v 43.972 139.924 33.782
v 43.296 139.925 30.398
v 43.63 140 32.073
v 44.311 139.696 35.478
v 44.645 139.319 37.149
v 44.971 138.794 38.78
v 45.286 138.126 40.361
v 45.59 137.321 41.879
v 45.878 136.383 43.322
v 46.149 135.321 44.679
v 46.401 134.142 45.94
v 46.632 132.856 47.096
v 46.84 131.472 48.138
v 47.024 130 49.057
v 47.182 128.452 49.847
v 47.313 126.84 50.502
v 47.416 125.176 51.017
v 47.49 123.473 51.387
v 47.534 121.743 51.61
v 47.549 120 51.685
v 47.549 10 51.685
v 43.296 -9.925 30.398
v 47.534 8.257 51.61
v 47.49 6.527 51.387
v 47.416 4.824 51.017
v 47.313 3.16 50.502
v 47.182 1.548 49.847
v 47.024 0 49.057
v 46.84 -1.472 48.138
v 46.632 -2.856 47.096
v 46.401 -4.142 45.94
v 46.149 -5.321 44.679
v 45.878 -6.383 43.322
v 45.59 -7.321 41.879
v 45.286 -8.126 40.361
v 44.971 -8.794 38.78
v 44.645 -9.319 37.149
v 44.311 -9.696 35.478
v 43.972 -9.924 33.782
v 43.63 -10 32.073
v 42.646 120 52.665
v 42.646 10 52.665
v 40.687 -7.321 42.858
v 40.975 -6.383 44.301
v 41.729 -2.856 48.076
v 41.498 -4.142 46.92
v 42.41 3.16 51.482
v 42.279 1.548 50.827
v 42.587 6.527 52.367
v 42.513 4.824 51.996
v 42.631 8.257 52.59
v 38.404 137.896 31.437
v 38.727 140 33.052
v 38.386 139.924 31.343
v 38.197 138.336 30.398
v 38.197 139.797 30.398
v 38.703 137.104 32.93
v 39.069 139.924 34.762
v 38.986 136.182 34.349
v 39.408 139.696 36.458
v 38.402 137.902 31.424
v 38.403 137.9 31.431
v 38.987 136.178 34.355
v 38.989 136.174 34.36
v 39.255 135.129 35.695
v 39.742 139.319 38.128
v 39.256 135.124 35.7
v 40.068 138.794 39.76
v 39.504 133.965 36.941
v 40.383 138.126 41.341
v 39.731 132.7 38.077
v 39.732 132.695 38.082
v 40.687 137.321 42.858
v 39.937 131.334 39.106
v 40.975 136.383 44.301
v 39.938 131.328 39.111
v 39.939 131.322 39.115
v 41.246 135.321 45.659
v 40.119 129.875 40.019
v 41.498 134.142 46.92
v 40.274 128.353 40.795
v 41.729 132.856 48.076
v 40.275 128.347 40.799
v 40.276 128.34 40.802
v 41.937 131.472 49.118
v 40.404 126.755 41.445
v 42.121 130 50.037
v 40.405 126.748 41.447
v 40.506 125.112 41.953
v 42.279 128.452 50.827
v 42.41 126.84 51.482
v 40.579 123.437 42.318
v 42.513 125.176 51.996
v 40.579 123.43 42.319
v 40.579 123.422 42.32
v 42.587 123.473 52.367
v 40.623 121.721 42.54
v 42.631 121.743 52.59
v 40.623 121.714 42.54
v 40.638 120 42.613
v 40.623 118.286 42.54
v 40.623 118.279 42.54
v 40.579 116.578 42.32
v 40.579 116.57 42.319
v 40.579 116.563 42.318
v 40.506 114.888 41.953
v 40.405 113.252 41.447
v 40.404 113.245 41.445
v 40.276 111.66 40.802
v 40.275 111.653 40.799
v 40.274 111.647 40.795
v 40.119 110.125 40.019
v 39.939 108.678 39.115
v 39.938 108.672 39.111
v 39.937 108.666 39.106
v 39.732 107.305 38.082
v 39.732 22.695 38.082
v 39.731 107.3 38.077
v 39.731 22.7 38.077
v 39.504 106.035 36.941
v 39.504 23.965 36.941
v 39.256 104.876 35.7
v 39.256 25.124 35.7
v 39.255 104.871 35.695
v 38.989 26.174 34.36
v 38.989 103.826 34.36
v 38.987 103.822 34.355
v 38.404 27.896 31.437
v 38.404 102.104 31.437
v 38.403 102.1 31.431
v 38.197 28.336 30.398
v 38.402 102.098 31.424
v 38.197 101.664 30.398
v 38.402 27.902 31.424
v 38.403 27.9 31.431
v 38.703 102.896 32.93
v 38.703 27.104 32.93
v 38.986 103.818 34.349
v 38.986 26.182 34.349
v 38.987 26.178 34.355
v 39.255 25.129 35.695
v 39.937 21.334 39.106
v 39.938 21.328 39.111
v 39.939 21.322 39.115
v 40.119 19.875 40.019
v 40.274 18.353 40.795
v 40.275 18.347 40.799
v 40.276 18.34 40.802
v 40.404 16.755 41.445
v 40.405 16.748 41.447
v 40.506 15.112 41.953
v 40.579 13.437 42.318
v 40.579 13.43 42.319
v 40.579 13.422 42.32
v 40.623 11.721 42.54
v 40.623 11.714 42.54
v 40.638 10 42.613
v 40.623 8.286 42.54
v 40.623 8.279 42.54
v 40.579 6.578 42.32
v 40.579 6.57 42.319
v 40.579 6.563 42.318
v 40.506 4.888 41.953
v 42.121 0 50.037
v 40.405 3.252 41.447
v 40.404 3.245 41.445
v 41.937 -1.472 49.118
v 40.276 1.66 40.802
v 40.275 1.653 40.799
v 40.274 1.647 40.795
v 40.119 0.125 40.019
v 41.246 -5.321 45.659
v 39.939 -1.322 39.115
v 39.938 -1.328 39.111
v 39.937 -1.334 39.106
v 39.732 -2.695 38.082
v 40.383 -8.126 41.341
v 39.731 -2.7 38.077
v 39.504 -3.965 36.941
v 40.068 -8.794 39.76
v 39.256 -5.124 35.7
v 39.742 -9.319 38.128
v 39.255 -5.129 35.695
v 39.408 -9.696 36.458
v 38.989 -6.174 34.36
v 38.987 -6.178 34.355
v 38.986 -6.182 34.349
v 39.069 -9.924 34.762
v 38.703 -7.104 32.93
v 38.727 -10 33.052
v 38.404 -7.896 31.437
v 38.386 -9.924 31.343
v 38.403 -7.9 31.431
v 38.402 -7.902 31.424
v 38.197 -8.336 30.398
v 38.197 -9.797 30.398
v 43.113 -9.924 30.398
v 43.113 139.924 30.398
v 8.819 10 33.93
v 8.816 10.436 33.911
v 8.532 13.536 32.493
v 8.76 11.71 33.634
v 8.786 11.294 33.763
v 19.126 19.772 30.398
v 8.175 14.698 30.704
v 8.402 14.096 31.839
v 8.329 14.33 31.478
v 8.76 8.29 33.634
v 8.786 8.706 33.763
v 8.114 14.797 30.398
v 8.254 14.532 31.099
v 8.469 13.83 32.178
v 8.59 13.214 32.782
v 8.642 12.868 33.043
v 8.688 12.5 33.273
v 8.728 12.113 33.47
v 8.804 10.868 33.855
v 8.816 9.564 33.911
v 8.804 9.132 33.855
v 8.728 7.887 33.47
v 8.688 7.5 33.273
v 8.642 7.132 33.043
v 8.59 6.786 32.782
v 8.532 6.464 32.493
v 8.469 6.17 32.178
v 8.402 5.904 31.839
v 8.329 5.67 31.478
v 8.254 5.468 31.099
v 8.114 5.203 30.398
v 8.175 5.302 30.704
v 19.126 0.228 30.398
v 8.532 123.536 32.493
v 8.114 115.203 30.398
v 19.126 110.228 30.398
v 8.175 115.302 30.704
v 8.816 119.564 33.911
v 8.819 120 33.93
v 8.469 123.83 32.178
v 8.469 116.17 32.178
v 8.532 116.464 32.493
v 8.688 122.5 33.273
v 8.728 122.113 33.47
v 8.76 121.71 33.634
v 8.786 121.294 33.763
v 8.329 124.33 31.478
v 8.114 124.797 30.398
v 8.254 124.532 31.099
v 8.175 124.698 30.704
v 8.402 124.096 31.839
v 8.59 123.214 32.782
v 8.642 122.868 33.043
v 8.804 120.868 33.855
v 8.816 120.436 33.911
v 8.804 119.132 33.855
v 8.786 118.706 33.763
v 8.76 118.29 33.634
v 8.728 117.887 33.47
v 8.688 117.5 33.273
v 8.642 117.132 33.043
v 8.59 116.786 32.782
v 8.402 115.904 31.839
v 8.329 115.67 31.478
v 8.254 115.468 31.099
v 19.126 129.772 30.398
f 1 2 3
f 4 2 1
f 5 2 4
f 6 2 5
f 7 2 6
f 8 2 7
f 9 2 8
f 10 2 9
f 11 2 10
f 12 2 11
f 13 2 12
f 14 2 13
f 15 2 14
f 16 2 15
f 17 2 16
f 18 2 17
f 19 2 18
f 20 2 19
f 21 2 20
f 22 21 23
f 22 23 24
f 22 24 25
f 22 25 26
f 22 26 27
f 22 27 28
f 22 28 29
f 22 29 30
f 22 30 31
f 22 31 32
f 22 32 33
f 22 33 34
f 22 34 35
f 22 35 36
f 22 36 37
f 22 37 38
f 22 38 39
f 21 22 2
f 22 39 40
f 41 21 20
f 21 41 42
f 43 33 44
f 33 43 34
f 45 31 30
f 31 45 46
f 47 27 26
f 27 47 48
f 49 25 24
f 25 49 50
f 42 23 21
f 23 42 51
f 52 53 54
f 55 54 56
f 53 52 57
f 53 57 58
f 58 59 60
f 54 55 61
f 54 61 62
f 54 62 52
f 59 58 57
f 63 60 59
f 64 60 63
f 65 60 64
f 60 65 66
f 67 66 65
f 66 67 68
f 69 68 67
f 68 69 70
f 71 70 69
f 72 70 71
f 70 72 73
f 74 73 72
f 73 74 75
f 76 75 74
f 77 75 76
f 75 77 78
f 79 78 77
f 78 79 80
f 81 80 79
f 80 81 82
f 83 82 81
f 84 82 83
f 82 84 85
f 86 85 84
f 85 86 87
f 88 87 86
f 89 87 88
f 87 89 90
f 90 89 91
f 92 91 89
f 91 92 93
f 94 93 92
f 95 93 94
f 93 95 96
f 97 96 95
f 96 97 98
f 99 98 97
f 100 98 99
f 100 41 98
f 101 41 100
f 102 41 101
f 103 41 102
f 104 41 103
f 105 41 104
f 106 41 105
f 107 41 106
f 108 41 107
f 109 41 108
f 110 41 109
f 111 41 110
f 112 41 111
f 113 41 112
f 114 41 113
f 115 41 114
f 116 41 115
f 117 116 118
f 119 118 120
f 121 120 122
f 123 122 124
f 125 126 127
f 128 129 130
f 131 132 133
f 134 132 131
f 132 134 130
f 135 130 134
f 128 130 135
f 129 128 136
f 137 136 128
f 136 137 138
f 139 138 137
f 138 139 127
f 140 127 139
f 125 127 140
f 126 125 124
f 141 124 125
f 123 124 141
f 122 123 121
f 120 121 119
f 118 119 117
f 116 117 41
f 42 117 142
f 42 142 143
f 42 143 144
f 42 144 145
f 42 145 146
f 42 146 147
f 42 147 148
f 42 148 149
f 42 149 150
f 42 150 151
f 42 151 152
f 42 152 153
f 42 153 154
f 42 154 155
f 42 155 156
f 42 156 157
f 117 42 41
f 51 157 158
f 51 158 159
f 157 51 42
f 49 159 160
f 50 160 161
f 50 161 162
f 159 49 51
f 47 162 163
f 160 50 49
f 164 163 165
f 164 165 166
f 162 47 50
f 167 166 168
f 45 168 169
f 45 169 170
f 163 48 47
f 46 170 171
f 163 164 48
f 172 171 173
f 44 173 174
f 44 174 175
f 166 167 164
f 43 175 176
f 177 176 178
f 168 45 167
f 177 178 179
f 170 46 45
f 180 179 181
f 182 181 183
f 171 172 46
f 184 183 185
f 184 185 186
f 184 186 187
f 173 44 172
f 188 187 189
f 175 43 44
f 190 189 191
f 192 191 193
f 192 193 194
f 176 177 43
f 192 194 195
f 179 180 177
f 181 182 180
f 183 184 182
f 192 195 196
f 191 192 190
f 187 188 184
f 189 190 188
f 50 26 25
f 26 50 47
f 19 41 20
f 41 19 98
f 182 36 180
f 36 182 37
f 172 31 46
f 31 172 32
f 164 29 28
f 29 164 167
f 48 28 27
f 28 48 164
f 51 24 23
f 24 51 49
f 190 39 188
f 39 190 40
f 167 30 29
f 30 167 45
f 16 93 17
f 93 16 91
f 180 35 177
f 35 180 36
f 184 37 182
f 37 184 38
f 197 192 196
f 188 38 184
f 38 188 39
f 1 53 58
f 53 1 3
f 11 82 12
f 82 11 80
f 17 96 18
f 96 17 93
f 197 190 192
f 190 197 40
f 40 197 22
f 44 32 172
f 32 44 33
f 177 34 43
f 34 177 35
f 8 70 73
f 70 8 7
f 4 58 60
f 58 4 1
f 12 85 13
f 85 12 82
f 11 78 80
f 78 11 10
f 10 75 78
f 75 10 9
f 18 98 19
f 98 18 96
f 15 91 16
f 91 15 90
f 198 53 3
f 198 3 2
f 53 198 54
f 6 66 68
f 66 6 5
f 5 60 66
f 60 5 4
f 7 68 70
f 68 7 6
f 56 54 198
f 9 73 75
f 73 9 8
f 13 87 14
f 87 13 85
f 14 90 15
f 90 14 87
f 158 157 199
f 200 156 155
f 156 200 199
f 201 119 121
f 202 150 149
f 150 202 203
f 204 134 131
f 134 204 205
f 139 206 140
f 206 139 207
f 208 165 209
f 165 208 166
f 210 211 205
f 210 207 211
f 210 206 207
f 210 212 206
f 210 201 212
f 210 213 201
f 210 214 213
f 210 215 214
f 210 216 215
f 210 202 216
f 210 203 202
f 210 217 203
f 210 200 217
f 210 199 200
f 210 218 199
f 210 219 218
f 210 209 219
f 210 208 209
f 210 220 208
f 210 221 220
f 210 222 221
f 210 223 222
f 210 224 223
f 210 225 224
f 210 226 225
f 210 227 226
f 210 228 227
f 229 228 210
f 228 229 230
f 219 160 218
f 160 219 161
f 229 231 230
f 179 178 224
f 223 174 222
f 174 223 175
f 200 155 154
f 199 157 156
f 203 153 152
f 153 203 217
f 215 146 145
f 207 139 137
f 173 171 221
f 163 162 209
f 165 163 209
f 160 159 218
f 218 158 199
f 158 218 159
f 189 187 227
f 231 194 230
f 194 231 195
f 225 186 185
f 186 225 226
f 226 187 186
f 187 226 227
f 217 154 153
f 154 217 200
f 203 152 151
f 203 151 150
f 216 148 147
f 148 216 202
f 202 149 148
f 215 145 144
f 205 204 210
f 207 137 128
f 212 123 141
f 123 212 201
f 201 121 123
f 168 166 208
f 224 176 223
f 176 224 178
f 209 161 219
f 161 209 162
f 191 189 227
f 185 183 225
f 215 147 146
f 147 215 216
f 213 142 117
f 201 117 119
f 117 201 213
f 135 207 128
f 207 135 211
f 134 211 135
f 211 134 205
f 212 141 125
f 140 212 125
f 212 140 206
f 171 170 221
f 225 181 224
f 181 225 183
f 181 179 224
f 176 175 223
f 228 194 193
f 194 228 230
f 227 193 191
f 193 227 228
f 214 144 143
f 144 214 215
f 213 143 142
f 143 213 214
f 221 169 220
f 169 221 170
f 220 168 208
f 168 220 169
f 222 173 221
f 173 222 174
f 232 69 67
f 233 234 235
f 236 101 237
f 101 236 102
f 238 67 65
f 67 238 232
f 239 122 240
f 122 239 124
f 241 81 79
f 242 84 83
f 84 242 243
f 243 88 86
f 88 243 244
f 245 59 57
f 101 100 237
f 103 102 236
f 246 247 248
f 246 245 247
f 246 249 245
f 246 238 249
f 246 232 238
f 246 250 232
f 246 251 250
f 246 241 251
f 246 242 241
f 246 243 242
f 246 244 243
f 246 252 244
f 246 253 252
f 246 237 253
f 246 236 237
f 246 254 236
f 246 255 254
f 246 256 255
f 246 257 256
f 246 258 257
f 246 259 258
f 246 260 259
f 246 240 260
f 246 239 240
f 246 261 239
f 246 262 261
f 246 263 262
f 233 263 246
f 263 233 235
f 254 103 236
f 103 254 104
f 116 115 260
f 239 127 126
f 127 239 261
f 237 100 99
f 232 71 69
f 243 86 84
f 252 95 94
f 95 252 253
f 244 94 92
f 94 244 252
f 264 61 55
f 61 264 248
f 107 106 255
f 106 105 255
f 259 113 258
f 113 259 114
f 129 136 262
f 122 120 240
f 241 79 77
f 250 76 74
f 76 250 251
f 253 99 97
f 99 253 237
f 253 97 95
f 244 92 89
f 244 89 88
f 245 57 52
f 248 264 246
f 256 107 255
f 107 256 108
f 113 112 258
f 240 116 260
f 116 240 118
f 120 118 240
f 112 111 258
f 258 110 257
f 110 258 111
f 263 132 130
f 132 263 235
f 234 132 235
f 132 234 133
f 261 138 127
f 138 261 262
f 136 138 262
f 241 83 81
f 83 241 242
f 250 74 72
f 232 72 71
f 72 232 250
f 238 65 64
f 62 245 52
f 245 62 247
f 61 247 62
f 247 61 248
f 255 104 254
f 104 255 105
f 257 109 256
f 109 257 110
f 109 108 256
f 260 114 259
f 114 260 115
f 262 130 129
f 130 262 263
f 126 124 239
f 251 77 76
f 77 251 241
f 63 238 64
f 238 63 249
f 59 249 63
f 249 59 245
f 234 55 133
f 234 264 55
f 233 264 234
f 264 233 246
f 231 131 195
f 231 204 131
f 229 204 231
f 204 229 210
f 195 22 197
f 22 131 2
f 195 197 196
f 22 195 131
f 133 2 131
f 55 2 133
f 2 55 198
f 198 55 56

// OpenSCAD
$fa=5; $fs=0.1;


rotate([0, 90+11.3, 0]) difference(){
    union(){
        hull(){
            translate([-40, 10, 34]) cylinder(h=5, r=20, center=true);
            translate([-40, 120, 34]) cylinder(h=5, r=20, center=true);
        }
        
        translate([-30, 10, 17]) cylinder(h=30, r2=20, r1=5, center=true);
        translate([-30, 120, 17]) cylinder(h=30, r2=20, r1=5, center=true);
    }
    
    
    union(){
        translate([-15, 65, 22]) rotate([0, -11.3, 0]) cube ([40, 150, 40], center=true);
    }
}
